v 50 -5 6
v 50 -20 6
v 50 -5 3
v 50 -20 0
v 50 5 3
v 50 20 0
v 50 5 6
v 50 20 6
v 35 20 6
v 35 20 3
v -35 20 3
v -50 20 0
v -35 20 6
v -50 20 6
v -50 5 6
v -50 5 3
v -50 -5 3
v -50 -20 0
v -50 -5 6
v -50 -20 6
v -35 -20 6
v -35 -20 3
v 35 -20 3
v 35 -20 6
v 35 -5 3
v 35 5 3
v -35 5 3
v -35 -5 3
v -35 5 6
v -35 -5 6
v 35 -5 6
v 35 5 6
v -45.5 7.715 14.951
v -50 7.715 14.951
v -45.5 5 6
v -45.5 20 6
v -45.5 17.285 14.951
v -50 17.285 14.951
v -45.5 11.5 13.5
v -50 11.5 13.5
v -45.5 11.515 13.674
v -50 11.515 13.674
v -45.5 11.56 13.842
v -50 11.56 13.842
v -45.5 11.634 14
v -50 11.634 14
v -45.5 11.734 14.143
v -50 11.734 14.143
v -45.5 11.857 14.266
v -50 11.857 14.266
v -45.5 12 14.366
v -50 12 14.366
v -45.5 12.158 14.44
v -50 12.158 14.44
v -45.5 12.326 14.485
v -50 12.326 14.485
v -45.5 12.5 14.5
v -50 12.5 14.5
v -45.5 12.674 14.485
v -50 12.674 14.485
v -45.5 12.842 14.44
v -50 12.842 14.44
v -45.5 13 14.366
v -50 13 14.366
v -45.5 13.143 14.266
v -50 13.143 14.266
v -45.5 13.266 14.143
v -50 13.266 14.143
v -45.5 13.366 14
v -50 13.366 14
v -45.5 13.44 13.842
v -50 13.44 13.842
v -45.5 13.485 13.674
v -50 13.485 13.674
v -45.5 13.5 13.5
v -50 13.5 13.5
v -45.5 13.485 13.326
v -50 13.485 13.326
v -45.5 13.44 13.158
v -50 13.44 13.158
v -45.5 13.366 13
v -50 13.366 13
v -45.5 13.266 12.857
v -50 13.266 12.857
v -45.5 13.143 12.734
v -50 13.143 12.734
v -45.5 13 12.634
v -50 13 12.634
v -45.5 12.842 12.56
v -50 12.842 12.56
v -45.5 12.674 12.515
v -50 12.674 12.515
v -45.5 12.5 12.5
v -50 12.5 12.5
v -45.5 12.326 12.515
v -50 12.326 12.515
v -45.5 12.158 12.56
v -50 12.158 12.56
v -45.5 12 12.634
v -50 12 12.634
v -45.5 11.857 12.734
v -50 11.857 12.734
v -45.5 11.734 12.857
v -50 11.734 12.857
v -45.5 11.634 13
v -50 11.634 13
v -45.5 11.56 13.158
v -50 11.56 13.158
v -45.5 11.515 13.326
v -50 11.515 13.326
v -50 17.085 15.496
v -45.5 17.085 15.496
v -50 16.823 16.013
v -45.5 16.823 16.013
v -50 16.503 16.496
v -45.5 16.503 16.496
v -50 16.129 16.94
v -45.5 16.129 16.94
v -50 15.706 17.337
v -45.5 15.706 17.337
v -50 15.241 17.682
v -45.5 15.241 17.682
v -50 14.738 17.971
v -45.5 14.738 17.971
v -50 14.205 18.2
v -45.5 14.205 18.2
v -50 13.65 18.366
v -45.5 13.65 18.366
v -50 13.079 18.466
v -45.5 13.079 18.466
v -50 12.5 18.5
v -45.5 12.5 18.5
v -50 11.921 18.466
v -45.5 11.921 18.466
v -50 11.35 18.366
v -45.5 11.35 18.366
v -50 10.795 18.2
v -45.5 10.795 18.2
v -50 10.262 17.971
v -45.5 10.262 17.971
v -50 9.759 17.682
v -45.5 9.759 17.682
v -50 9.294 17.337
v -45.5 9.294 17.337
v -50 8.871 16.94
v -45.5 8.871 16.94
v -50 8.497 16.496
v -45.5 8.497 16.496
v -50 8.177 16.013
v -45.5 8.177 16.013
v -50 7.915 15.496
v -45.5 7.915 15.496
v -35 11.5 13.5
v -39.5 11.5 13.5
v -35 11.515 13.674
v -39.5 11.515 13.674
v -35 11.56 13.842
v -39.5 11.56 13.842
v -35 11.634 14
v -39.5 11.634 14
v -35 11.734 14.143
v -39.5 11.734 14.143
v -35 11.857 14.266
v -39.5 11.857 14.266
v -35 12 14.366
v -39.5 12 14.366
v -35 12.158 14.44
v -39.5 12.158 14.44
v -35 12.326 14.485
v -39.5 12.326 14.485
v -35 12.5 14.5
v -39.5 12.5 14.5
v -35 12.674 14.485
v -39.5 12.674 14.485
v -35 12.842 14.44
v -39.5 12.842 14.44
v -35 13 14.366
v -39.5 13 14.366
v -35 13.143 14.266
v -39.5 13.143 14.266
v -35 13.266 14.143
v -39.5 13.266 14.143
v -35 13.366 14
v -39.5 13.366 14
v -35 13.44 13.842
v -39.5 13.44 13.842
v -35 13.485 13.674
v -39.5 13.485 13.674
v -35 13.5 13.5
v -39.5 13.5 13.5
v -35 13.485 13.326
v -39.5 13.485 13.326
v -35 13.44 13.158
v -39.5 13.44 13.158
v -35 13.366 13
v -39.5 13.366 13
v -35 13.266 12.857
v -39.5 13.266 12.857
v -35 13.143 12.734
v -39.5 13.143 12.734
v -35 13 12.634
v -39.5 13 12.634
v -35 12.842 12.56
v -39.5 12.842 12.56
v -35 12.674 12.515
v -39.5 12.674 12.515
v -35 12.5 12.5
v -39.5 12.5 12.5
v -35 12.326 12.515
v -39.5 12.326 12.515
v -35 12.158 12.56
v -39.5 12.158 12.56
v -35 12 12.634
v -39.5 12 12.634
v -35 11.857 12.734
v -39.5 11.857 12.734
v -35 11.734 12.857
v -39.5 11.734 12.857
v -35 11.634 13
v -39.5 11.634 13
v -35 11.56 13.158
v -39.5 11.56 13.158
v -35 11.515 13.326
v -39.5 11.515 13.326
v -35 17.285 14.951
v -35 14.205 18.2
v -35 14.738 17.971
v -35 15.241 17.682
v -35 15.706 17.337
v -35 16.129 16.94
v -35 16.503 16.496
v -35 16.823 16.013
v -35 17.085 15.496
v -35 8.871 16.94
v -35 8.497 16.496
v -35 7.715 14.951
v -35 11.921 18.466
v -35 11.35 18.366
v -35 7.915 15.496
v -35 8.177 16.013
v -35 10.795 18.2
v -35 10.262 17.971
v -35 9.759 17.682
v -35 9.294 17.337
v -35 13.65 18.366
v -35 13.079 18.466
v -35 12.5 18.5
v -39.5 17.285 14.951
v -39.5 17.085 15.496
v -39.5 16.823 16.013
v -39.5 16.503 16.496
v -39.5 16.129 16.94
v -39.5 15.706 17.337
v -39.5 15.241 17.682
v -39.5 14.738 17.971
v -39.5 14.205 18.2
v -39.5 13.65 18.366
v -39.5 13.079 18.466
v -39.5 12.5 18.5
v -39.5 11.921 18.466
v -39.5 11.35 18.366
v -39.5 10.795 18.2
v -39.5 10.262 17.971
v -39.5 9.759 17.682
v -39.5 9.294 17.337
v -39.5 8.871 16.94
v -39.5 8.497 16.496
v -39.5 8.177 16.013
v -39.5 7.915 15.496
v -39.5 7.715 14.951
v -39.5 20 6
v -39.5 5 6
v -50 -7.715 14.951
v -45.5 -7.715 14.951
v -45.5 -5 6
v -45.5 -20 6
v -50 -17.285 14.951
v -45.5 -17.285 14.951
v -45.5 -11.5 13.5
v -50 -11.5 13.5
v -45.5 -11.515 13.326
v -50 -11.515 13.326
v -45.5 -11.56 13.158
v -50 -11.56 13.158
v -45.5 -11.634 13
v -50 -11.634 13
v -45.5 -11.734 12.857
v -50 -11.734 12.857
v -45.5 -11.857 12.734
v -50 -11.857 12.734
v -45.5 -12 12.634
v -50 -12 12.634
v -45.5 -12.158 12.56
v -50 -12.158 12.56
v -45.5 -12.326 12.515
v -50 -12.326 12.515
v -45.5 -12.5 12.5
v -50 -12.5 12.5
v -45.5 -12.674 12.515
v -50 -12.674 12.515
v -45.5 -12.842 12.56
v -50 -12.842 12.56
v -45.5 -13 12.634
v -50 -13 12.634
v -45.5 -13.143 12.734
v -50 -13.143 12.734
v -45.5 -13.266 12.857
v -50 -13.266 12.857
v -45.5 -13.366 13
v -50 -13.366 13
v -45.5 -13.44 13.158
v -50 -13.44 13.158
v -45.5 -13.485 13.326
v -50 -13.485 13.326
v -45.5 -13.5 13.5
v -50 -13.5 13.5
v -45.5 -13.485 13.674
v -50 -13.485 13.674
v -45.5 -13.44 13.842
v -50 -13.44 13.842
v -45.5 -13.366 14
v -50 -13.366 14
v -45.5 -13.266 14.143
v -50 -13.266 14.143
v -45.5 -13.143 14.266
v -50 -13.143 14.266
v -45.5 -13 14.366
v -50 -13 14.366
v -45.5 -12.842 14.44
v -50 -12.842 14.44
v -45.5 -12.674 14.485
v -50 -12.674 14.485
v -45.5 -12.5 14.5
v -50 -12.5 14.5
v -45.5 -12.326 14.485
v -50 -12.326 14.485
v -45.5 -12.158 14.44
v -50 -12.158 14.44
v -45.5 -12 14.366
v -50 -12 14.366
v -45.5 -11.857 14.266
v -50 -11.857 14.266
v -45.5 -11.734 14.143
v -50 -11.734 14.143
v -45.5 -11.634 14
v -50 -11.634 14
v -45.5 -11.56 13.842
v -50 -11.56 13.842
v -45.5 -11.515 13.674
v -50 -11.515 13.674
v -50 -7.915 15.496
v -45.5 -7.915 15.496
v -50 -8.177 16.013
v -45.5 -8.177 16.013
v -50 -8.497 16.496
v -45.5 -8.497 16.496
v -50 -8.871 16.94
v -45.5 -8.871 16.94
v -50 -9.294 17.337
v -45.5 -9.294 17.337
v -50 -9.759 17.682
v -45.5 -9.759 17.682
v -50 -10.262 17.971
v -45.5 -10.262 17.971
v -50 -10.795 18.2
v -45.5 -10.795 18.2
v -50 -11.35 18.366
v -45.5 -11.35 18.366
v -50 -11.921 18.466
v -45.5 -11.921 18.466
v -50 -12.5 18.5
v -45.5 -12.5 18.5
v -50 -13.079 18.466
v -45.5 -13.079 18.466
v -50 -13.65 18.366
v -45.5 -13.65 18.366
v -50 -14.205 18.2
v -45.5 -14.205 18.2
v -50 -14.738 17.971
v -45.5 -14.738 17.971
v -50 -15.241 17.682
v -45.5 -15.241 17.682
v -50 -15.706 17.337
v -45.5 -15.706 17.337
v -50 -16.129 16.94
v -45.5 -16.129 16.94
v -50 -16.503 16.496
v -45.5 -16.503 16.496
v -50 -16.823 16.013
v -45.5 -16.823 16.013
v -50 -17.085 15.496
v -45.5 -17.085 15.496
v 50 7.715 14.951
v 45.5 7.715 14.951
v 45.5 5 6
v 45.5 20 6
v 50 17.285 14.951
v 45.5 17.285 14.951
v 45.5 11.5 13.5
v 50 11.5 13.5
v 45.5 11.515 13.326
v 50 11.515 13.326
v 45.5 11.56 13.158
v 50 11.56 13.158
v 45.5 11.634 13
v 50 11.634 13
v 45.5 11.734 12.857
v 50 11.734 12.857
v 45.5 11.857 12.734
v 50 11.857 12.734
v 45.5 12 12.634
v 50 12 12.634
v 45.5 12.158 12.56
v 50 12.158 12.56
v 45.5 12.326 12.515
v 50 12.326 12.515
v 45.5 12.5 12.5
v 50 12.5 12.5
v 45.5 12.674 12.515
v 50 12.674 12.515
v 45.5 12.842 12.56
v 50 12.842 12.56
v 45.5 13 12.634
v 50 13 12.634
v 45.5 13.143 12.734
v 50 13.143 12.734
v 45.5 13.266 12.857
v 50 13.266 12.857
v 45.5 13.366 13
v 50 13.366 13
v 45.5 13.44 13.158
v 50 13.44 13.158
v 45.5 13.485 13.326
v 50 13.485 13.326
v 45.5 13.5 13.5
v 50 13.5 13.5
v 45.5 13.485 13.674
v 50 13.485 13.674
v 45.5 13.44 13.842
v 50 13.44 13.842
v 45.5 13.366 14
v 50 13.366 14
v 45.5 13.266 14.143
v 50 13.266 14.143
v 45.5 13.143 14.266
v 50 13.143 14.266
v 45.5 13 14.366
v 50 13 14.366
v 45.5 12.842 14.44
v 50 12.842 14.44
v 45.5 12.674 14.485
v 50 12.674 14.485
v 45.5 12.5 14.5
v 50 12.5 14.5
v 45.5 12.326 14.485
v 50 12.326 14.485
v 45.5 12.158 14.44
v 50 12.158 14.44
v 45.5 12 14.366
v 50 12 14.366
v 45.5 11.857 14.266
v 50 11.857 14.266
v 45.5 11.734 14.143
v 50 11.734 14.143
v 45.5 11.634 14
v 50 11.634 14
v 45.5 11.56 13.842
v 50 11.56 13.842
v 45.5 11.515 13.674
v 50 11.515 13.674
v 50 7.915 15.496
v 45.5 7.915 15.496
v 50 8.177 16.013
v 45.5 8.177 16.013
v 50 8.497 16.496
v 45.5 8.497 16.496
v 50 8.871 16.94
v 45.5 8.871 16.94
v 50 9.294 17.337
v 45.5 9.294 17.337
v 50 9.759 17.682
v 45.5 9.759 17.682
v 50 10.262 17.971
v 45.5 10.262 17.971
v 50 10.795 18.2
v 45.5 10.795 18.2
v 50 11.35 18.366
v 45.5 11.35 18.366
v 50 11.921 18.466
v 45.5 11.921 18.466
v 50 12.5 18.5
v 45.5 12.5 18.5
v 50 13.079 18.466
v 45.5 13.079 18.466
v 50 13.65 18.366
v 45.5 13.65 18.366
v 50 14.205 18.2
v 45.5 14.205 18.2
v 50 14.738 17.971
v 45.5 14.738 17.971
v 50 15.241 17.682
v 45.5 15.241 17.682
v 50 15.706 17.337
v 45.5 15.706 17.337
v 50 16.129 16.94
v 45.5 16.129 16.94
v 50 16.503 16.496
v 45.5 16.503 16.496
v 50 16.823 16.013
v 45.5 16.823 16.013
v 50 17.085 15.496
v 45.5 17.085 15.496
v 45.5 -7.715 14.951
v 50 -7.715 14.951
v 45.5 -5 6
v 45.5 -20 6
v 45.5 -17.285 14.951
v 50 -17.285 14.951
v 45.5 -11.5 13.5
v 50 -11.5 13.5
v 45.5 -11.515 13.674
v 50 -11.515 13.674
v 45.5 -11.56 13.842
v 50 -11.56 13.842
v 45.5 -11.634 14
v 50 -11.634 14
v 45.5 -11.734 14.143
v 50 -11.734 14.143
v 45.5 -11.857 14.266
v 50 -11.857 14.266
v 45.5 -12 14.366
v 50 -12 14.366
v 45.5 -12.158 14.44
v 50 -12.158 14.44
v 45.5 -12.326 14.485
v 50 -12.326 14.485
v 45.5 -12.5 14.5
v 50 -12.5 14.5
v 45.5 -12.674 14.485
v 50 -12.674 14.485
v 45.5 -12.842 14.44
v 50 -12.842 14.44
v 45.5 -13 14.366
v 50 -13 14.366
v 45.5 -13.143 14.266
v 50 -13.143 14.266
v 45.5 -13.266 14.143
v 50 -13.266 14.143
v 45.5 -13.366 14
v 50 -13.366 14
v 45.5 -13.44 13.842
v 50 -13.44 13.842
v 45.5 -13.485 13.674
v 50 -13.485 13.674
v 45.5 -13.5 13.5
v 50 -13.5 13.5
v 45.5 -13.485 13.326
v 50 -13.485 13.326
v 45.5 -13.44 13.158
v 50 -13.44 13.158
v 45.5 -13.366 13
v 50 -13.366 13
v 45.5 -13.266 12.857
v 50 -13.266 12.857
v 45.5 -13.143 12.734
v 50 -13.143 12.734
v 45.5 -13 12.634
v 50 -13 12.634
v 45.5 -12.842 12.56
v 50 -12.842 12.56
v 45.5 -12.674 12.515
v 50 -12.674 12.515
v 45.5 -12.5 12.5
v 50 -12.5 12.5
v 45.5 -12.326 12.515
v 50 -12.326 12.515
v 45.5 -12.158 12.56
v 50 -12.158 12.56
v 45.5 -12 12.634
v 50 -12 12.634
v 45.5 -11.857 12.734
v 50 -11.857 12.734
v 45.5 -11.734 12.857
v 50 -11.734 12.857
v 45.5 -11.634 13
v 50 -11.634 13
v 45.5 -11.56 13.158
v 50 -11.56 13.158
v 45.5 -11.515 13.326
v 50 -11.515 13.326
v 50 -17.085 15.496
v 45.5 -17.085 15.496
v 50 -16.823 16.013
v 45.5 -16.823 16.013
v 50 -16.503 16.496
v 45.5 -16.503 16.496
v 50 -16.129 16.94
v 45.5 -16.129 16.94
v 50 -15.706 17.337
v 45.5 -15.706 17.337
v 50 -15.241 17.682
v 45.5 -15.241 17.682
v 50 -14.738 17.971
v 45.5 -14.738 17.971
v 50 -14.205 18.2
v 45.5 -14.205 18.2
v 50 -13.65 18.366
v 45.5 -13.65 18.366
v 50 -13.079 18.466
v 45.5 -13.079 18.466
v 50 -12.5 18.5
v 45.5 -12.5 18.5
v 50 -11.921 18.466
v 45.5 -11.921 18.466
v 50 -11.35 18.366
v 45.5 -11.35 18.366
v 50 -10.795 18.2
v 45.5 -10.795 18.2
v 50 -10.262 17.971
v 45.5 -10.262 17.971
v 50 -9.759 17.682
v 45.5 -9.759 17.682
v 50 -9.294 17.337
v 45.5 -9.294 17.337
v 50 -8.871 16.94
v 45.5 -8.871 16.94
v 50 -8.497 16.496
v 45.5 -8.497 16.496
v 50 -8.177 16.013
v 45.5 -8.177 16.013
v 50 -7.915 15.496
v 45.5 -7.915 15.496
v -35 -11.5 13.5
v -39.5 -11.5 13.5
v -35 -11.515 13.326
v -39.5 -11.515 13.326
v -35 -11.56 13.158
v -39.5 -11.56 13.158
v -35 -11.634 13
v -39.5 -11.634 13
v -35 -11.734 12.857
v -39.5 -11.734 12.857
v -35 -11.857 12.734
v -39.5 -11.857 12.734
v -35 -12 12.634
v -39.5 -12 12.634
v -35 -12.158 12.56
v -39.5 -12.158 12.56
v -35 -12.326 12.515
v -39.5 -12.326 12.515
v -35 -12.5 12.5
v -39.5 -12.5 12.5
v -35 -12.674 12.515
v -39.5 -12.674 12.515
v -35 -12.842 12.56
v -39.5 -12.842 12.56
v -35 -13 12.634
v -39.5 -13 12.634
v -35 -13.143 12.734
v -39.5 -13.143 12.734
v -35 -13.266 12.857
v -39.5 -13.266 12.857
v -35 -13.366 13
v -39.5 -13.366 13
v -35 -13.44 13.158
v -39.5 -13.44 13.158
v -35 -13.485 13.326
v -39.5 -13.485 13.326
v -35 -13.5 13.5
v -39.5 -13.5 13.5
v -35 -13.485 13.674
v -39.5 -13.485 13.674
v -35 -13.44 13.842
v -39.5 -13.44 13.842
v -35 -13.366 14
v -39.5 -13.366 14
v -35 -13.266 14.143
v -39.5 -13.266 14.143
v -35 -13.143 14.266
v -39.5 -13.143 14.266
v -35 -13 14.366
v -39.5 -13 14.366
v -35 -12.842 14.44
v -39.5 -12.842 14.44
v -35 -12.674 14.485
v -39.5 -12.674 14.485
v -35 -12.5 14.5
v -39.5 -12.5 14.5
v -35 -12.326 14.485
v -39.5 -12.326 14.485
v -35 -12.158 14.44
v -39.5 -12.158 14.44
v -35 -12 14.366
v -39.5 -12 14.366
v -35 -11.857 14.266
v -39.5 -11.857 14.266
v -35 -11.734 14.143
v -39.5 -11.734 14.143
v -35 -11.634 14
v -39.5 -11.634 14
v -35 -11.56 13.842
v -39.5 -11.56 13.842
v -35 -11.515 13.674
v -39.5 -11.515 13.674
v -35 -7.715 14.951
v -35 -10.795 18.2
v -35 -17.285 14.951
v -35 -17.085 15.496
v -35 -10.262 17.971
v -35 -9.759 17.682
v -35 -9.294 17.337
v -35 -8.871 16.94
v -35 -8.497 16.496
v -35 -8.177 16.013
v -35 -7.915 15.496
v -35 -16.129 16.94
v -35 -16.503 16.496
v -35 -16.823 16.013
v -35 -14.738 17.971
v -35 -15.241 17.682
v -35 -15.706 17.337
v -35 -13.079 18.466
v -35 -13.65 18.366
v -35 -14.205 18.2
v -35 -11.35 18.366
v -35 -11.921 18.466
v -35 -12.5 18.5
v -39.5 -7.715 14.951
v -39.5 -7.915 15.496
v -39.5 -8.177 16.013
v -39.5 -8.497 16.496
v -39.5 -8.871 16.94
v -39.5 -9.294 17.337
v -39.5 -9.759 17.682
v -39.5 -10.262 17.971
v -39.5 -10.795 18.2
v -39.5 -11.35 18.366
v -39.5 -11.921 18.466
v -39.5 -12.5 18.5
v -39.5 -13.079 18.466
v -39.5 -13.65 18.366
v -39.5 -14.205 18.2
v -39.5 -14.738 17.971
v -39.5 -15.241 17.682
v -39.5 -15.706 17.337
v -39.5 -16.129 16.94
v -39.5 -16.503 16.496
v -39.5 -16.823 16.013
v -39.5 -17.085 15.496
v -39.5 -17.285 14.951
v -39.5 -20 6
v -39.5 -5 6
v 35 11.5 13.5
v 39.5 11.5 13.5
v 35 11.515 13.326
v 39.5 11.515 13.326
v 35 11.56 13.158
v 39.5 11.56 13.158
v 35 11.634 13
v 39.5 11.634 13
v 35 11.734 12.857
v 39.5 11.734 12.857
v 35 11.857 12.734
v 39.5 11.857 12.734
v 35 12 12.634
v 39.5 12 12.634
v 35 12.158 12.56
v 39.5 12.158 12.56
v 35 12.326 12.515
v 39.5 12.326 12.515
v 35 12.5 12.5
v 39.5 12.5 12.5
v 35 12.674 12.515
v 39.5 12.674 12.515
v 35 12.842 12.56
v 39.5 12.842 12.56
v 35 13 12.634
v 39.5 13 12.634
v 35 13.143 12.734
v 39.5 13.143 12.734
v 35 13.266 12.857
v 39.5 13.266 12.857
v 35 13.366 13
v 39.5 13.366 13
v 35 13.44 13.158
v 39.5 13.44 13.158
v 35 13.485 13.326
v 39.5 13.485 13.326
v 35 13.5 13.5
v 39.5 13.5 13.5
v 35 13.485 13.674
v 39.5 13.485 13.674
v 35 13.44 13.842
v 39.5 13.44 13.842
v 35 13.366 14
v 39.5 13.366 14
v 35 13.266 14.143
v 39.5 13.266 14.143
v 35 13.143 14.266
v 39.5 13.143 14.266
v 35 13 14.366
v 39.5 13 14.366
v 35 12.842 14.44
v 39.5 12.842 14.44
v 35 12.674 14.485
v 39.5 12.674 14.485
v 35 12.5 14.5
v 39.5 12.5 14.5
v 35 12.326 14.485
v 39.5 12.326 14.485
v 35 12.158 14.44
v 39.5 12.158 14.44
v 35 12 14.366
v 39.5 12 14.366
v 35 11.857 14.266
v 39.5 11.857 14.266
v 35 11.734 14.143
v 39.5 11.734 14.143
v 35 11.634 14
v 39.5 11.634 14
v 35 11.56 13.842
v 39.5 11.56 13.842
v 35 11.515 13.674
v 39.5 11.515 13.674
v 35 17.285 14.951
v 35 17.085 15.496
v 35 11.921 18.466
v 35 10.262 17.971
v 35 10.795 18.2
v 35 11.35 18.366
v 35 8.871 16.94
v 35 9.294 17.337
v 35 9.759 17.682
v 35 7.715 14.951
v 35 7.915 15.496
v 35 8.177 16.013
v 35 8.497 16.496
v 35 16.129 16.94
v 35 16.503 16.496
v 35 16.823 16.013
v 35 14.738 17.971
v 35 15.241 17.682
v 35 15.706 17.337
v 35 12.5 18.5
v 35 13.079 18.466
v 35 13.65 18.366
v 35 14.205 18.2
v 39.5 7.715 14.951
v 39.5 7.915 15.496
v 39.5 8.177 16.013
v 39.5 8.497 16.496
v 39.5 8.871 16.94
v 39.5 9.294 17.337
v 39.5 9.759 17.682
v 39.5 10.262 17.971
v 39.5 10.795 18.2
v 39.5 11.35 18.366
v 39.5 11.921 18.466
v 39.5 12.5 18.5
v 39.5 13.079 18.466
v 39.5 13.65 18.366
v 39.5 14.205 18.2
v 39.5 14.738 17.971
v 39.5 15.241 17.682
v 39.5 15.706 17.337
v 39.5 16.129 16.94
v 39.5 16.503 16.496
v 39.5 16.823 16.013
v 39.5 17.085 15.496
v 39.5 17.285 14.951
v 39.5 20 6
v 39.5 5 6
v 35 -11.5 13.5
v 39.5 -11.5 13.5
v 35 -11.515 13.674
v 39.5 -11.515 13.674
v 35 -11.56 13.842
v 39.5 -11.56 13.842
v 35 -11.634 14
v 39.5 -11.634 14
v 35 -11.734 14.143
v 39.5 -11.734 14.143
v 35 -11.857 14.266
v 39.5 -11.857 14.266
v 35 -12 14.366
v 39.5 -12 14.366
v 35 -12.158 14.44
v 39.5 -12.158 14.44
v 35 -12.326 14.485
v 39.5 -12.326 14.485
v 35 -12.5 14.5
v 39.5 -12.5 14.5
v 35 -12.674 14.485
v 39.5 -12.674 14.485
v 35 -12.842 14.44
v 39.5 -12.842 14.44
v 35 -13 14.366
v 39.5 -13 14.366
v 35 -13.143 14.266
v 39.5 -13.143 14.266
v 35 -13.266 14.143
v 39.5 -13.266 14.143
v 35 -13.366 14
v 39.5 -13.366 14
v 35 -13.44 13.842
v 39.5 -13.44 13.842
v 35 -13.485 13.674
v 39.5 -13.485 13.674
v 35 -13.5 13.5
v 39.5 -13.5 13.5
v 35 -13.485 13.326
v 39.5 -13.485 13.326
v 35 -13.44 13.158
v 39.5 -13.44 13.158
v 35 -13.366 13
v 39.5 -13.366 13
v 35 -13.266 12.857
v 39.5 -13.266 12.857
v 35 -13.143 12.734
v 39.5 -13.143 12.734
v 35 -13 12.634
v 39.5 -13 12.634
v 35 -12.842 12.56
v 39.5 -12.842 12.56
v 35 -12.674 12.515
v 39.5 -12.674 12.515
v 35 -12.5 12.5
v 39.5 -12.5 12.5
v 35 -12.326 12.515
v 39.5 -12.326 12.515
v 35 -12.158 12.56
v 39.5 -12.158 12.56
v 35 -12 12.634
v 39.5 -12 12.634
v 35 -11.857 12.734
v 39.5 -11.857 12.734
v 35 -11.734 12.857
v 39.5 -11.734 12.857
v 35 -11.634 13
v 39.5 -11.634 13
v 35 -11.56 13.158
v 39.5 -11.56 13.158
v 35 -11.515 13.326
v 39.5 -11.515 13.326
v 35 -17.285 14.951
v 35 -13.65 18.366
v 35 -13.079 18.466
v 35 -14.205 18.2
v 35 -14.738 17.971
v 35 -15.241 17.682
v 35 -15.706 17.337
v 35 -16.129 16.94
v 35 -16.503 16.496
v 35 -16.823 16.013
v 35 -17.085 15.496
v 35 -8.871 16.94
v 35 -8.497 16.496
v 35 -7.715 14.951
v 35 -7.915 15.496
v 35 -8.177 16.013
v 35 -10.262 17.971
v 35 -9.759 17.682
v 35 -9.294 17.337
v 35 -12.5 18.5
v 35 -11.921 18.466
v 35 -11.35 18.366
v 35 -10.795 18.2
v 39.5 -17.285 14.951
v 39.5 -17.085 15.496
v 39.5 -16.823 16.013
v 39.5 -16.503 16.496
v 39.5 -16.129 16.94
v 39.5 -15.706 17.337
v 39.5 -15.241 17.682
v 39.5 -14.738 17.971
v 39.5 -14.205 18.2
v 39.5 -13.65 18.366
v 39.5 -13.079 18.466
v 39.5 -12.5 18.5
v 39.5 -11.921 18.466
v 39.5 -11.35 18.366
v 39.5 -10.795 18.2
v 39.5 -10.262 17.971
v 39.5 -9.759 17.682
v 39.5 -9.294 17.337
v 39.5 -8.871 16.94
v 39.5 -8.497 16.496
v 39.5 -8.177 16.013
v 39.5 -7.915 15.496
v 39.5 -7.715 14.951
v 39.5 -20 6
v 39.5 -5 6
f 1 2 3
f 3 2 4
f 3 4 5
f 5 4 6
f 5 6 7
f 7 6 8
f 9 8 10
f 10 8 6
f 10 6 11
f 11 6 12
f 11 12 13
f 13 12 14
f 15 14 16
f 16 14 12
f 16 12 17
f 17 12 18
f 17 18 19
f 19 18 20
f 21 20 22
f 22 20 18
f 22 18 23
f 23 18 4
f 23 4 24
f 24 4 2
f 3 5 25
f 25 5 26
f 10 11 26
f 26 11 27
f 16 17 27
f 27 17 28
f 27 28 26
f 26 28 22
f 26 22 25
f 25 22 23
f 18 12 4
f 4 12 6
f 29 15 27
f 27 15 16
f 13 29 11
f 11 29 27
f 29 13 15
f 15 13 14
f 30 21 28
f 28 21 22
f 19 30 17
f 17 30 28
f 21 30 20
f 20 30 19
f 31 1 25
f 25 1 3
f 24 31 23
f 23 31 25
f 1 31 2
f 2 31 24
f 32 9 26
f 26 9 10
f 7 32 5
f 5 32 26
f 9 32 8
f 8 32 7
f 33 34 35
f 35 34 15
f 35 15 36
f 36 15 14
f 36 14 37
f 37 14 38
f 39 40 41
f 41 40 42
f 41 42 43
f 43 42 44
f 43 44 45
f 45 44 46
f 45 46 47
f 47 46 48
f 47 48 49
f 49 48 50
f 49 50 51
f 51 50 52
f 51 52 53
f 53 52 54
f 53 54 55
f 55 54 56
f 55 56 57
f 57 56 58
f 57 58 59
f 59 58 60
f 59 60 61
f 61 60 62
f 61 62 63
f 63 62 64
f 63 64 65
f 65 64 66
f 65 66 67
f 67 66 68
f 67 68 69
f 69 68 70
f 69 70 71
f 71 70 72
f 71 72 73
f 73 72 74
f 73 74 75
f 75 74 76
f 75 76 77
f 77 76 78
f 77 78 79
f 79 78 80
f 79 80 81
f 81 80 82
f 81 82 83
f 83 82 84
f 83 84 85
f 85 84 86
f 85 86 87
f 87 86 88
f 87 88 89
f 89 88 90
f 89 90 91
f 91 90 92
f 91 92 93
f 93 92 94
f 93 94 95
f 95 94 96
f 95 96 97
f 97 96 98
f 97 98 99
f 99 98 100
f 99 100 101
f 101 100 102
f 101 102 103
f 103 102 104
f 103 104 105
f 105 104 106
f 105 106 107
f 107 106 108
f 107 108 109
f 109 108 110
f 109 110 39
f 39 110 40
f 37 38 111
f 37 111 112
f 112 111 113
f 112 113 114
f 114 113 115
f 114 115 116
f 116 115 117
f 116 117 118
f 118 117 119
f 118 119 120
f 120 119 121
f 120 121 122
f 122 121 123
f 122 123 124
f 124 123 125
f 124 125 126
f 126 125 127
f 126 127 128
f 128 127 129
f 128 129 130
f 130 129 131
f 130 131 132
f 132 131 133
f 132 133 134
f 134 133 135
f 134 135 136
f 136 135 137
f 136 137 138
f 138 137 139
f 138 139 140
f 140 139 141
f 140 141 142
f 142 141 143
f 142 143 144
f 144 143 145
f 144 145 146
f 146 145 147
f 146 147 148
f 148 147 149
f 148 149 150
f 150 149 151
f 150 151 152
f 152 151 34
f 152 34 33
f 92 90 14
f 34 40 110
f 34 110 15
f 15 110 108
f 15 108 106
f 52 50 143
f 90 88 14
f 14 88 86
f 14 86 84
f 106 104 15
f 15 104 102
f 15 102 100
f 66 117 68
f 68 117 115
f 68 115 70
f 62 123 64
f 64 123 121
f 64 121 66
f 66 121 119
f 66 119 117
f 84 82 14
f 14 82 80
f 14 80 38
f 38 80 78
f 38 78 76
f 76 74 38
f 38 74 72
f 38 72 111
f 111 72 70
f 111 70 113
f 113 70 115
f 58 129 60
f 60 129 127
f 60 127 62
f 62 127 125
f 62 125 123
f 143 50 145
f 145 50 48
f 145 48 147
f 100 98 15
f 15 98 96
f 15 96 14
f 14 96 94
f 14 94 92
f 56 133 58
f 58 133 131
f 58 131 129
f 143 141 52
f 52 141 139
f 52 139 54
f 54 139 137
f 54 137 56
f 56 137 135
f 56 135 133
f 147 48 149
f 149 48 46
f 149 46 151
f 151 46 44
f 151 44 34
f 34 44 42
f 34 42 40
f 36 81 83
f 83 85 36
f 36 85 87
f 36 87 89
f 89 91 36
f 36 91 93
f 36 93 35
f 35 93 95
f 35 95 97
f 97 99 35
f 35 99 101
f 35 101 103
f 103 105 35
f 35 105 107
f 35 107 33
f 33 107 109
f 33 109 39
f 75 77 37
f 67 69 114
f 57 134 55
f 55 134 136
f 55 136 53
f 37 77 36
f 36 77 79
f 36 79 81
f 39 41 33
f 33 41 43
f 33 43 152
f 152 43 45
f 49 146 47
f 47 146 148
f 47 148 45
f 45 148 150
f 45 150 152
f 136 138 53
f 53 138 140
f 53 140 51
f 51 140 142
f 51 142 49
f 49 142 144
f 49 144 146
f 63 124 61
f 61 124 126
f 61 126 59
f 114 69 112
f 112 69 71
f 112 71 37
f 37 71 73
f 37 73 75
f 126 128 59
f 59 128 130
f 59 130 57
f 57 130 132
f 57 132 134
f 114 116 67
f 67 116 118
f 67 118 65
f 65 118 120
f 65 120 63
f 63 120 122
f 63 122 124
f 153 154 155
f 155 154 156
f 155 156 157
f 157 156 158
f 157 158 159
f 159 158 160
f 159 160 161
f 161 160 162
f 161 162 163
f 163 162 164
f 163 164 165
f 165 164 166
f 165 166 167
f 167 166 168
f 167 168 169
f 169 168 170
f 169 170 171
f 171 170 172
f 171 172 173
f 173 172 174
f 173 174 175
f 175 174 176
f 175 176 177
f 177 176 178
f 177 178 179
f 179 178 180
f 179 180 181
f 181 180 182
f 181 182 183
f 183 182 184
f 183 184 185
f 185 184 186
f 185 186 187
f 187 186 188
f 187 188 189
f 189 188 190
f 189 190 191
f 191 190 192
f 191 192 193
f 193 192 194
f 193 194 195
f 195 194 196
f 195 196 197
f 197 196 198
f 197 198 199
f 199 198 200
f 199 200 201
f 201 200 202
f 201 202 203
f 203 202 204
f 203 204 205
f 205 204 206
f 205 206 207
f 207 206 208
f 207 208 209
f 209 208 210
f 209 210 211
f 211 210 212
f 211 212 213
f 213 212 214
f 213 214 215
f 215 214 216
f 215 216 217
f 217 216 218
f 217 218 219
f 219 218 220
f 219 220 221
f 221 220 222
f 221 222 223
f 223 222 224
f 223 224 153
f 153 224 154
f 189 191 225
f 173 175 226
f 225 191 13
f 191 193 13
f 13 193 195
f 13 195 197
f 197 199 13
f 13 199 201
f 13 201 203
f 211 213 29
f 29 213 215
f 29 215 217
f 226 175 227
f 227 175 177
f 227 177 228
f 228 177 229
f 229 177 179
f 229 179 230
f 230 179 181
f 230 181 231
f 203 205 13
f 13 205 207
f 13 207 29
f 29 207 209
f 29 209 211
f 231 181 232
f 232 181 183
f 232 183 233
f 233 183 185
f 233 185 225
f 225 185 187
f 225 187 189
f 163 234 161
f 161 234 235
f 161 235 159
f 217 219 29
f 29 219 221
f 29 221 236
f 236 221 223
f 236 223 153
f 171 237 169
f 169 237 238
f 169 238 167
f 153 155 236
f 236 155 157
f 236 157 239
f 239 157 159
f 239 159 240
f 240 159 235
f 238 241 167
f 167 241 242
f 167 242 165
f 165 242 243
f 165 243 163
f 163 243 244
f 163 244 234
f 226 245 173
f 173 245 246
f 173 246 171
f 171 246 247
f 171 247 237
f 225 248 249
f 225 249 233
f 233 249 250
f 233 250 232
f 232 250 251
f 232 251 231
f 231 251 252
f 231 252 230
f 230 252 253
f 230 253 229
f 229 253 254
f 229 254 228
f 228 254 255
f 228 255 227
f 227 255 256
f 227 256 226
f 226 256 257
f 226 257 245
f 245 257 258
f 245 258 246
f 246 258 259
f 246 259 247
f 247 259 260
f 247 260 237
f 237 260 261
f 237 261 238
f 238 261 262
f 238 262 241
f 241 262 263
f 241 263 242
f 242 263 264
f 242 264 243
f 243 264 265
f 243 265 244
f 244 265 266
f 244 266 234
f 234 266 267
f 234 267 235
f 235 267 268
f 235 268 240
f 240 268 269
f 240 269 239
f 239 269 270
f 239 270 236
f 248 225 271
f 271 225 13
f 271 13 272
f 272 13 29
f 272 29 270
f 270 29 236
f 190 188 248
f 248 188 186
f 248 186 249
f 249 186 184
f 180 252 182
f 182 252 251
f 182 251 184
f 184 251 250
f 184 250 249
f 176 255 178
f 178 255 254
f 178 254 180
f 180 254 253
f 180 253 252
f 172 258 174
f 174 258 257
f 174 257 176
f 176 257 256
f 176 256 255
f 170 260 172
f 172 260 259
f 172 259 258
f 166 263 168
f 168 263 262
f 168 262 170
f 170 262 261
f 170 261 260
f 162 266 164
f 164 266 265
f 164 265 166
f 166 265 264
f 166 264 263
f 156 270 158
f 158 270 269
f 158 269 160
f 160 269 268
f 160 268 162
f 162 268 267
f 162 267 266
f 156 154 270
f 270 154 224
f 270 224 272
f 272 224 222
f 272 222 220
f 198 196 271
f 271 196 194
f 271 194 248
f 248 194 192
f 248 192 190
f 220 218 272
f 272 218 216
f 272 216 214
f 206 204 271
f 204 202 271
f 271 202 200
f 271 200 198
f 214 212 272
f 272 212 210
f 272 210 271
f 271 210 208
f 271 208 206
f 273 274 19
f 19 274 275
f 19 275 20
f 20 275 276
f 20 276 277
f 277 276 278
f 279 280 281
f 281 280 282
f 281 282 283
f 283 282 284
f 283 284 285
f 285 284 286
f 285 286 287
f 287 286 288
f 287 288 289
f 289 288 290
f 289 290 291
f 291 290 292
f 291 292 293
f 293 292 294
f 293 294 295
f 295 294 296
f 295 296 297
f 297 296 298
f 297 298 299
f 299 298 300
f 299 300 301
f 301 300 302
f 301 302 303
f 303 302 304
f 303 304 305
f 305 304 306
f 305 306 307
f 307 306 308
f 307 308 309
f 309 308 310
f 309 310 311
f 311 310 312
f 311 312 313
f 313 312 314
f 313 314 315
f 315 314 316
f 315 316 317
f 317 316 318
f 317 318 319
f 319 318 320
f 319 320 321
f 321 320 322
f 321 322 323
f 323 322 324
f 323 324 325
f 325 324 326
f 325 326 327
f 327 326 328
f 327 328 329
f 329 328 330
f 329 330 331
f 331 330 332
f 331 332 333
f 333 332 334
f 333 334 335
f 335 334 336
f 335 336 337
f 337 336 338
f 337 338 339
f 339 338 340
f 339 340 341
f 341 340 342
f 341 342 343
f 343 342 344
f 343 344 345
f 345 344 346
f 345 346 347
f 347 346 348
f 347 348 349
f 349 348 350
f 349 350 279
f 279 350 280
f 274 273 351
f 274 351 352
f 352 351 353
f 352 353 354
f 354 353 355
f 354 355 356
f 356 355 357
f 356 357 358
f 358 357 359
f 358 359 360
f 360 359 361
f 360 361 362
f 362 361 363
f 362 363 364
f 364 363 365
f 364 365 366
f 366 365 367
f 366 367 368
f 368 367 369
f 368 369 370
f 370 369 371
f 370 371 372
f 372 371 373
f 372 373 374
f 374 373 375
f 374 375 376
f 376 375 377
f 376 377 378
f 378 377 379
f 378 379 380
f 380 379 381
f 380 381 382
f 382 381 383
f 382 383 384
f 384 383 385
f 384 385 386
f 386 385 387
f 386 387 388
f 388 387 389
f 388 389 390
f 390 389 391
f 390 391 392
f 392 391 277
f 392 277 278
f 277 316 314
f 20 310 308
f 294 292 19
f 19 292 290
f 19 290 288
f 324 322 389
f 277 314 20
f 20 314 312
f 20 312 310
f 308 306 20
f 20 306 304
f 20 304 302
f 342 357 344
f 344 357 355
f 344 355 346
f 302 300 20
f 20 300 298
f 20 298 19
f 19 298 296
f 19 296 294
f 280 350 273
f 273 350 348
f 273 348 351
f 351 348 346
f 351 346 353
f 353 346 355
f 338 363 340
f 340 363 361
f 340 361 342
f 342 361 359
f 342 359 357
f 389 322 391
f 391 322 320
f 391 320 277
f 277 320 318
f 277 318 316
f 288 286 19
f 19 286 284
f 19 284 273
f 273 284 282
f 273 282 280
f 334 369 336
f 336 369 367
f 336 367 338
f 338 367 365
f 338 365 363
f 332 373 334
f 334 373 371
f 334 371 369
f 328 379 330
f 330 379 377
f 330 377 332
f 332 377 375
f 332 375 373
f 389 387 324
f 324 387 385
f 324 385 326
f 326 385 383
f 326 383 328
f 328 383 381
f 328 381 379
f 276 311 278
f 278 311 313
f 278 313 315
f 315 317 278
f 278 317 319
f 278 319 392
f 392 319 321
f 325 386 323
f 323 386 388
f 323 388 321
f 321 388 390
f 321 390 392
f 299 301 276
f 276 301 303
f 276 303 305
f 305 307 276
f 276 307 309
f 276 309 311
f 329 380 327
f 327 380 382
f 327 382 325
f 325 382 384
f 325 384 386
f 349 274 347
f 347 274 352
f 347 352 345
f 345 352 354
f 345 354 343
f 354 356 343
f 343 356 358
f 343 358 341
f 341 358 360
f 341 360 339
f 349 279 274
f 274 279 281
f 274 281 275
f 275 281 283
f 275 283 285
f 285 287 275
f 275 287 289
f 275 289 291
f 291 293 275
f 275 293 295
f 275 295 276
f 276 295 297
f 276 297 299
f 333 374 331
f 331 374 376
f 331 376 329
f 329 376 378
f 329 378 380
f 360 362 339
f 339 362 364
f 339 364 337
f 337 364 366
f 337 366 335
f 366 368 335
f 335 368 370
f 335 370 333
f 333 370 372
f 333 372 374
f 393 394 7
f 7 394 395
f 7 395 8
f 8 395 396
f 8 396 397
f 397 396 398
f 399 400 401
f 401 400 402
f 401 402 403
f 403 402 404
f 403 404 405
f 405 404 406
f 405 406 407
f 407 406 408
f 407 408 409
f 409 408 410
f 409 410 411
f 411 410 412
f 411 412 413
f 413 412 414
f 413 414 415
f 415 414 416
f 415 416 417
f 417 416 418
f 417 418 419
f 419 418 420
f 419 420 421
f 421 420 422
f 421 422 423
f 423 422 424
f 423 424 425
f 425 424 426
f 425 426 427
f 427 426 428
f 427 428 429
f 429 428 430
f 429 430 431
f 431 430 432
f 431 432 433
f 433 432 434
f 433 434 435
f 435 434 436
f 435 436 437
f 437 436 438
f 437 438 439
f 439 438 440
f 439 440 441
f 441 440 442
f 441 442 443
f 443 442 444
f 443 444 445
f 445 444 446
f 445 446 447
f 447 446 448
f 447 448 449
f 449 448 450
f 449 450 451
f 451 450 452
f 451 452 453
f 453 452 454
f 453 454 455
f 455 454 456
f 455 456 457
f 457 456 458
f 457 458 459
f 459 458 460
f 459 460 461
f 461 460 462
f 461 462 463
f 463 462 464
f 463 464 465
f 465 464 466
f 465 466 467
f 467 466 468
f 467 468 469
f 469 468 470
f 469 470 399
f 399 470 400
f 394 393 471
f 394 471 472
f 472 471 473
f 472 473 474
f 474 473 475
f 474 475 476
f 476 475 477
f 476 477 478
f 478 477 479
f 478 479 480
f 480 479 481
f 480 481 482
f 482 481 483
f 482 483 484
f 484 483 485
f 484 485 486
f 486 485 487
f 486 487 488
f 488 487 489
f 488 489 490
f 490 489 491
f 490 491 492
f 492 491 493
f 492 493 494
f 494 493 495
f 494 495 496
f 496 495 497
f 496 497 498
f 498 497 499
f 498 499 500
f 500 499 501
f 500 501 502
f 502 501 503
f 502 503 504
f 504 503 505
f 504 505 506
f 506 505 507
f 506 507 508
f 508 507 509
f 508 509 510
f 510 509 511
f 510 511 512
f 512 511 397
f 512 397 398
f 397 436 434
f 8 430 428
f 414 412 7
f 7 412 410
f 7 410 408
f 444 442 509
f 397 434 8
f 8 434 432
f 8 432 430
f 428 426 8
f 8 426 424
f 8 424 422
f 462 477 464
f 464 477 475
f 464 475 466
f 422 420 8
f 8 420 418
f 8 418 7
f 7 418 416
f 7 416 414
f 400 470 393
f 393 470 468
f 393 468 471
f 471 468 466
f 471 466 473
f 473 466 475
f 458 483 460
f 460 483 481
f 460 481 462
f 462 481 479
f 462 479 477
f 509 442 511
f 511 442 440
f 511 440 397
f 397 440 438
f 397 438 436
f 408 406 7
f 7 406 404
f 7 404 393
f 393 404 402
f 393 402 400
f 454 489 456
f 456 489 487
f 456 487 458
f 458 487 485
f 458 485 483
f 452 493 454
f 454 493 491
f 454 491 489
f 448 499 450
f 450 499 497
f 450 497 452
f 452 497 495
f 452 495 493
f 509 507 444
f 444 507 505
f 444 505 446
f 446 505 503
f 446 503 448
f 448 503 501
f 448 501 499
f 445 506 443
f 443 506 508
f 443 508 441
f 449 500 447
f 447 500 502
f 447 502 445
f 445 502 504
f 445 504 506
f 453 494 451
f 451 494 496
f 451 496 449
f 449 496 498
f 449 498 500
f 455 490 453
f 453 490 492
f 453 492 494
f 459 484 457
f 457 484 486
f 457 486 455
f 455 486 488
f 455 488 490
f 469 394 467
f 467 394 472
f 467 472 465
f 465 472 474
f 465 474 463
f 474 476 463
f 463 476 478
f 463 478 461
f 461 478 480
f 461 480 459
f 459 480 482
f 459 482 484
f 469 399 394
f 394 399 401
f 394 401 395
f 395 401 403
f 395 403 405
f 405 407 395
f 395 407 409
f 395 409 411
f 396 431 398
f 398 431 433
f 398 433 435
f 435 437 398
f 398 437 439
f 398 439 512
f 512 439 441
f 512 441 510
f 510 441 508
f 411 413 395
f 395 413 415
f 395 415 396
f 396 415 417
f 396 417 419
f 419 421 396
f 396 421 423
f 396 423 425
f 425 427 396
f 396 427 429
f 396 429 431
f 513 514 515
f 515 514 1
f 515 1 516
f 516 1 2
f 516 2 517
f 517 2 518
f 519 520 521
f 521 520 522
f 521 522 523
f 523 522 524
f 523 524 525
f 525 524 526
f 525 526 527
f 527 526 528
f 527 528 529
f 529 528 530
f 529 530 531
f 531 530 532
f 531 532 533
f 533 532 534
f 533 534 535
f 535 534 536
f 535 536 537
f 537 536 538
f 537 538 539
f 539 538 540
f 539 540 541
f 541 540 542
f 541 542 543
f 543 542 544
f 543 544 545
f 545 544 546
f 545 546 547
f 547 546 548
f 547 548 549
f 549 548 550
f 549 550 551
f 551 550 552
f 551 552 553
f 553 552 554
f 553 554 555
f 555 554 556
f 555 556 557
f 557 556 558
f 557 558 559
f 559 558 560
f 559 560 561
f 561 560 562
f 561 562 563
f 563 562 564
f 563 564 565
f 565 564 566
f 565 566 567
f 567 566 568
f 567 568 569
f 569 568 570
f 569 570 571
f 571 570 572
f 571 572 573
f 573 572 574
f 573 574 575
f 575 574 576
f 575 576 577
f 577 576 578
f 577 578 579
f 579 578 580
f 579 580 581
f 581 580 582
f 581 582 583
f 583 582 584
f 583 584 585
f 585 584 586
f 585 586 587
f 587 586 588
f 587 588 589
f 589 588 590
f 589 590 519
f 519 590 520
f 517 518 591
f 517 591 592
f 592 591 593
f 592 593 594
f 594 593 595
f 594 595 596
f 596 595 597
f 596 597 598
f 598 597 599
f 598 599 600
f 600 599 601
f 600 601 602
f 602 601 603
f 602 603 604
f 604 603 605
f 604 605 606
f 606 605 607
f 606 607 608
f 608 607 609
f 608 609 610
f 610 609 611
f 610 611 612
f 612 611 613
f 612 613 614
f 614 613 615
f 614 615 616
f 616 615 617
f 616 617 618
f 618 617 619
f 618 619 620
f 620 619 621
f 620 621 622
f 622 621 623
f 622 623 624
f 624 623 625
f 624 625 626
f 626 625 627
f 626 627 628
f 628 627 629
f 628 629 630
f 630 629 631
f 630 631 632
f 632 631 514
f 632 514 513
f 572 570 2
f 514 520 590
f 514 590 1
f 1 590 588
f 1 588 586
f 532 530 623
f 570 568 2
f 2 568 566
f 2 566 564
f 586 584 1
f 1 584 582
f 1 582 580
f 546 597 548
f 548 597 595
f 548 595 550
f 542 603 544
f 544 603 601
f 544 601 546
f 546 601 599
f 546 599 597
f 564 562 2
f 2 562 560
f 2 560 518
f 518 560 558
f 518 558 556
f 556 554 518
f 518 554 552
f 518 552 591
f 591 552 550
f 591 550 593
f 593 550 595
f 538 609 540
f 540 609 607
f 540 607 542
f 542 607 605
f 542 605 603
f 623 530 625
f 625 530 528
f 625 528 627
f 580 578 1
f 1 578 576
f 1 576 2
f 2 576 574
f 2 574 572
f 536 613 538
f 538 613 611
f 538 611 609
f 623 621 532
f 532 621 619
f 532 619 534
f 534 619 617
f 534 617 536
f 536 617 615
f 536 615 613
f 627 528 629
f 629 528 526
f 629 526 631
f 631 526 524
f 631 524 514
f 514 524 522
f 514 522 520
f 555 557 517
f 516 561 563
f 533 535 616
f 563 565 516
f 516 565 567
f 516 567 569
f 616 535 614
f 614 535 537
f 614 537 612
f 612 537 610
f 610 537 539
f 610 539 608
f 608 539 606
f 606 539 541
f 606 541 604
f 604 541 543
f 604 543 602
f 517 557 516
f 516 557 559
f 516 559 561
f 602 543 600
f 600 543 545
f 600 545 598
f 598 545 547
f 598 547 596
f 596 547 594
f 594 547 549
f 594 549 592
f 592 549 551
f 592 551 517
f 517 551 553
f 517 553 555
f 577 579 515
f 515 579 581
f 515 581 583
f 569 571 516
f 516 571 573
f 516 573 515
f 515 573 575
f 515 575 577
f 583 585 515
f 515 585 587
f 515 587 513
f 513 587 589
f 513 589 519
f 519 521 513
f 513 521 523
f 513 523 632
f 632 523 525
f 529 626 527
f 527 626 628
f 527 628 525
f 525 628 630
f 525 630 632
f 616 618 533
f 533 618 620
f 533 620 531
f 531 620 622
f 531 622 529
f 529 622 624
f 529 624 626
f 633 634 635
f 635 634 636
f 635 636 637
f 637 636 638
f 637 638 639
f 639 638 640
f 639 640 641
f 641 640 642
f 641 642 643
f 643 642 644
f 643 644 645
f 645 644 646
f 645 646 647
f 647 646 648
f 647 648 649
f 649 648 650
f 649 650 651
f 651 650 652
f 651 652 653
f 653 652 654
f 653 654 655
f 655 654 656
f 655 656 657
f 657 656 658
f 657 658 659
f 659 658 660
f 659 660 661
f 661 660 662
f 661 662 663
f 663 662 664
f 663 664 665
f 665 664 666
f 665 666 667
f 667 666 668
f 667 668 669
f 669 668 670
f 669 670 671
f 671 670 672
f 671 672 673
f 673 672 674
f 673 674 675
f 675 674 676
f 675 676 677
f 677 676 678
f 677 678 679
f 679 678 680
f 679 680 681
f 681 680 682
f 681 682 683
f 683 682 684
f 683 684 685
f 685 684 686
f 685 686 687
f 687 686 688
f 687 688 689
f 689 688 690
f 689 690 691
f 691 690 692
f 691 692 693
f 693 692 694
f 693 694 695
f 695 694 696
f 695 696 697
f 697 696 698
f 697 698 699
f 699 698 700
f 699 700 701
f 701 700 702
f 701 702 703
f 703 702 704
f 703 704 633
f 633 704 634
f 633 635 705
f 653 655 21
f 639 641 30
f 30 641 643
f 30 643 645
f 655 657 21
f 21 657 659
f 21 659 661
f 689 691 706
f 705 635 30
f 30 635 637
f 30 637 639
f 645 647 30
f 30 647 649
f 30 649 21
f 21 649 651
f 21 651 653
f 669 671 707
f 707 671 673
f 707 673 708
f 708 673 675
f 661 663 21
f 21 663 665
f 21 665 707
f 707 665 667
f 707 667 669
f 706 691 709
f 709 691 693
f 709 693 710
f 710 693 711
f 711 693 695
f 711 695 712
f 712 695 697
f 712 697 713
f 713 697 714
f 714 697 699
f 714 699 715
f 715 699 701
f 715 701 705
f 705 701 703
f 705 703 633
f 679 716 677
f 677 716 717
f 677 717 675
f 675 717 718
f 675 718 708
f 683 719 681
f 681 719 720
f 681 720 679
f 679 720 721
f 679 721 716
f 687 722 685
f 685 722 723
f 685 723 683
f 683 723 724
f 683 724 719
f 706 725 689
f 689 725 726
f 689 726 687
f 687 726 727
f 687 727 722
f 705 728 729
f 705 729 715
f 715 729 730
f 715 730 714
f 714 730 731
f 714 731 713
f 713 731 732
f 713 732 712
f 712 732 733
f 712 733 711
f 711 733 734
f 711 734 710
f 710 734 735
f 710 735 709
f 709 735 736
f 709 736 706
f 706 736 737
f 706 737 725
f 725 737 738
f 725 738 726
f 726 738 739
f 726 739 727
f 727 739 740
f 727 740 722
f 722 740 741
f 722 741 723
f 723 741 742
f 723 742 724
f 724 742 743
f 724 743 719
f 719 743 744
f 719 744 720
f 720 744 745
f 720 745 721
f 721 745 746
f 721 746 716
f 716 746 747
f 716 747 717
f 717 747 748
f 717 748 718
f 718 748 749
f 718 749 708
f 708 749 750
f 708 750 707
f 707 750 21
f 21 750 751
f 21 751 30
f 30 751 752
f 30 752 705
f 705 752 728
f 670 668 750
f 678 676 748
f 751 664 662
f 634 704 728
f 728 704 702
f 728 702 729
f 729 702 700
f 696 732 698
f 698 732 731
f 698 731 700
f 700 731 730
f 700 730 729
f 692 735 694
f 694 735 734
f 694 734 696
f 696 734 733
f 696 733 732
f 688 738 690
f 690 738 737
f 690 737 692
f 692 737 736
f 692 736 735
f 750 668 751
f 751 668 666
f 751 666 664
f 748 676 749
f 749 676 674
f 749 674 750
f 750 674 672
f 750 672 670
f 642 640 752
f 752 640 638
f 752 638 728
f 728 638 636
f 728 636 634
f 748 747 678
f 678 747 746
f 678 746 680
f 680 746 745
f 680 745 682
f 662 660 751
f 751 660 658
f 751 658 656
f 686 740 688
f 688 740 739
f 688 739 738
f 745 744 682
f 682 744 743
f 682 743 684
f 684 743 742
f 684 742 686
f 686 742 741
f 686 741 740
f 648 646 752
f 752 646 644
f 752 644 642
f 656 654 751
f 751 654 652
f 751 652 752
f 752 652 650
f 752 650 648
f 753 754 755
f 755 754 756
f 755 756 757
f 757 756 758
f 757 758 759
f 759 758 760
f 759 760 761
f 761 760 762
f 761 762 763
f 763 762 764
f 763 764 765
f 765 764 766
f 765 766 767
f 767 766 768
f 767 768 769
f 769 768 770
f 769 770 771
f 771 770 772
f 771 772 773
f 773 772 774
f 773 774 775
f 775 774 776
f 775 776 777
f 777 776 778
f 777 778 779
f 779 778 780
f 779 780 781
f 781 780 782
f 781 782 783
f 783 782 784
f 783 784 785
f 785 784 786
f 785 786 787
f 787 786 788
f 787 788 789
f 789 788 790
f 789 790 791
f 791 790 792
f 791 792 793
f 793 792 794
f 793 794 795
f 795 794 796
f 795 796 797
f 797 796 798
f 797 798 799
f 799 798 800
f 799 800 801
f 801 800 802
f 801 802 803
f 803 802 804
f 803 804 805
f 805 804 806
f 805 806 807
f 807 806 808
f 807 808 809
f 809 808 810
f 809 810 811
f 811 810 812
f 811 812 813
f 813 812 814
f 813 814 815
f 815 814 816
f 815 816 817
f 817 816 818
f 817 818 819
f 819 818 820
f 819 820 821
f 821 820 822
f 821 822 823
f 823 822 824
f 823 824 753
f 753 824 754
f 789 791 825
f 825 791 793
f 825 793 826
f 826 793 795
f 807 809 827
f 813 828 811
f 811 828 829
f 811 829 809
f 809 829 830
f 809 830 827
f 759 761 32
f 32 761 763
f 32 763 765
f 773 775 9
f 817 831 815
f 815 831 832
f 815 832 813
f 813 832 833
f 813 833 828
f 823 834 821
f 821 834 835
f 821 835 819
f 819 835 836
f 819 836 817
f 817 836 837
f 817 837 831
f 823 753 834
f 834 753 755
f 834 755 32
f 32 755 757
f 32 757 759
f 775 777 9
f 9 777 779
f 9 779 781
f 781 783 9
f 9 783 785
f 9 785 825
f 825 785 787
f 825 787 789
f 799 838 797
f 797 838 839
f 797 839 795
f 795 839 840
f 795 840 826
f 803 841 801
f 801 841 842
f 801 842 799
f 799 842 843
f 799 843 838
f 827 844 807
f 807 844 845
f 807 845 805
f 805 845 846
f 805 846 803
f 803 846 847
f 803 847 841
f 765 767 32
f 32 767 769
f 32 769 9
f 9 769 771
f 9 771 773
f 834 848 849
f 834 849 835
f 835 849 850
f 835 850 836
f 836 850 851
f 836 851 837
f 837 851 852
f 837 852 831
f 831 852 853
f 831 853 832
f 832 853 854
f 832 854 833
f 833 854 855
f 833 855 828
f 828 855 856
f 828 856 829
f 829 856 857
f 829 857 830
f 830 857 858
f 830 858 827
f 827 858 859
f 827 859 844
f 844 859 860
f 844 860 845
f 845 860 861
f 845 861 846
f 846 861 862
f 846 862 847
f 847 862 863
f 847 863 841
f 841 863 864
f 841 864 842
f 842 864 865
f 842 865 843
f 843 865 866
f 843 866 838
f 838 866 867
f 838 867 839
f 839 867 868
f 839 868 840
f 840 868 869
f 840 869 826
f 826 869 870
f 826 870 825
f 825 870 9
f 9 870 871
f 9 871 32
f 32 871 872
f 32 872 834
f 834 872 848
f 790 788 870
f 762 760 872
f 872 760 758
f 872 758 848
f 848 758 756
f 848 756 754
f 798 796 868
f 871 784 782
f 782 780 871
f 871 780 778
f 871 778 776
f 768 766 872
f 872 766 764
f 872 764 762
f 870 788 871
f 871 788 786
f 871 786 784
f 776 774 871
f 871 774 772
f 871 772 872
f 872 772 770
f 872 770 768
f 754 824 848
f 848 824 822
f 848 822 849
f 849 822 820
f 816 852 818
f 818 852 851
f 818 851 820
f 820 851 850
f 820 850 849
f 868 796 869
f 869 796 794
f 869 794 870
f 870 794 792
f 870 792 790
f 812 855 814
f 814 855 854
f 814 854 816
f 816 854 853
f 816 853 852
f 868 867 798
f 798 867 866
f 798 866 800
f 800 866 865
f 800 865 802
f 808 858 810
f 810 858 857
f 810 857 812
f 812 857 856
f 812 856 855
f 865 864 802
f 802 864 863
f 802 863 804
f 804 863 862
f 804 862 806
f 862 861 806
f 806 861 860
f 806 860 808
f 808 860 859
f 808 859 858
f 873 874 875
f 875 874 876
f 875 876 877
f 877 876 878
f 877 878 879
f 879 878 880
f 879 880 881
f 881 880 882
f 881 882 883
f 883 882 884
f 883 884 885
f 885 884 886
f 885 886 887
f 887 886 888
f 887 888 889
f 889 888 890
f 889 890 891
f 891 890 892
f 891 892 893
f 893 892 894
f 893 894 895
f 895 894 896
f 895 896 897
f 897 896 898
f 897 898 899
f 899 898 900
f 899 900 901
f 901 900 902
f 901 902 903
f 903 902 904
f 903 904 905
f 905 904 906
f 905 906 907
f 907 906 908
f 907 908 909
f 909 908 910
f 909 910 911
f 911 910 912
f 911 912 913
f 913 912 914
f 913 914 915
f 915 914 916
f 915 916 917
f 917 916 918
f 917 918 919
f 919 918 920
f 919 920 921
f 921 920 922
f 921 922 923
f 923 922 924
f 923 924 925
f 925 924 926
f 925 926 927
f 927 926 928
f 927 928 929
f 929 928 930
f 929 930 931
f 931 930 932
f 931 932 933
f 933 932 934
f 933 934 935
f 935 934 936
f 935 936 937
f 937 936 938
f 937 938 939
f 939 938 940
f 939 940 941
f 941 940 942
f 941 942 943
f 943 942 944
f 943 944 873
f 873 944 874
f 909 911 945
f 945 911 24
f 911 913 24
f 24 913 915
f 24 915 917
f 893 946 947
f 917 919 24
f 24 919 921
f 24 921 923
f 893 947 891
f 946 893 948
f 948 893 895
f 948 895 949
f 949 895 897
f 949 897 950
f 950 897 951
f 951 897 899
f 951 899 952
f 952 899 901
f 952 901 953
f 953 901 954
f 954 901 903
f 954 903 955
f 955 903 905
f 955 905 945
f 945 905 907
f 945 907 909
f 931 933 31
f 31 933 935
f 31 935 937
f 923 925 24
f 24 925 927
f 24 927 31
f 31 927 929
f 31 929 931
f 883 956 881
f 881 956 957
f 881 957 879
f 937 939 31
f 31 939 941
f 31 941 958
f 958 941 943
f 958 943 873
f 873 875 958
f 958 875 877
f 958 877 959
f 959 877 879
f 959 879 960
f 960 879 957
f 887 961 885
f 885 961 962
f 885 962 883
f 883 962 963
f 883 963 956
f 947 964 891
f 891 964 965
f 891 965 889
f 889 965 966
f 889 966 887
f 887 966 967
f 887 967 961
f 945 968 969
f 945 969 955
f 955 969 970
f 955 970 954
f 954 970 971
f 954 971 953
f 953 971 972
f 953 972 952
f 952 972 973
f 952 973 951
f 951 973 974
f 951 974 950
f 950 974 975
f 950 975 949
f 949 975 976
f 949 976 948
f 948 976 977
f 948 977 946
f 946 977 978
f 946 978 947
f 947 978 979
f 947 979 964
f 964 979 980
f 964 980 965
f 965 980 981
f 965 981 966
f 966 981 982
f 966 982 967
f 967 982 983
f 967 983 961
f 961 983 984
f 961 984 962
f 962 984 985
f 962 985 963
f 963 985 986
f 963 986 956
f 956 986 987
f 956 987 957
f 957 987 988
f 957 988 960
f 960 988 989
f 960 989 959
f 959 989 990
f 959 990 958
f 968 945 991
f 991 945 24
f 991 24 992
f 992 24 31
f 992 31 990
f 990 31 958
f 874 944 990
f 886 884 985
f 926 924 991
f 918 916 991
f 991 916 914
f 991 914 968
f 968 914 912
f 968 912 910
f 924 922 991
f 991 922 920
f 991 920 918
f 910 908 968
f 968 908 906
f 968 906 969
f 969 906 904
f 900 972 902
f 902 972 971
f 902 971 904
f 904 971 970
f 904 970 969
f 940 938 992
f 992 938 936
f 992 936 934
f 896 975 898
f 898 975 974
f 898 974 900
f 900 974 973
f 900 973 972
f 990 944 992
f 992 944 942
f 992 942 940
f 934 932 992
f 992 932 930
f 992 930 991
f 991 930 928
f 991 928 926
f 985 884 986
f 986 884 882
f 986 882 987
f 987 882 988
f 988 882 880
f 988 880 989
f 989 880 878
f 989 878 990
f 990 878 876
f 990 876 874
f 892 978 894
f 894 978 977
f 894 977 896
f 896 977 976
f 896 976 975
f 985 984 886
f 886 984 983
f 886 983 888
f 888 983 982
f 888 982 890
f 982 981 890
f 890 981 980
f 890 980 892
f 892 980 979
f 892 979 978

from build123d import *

# Parameters (mm, degrees)
SKETCH1_W           = 100
SKETCH1_H           = 40
BOSS_EXTRUDE1_DEPTH = 3
SKETCH2_W           = 15
SKETCH2_H           = 15
BOSS_EXTRUDE2_DEPTH = 3
SKETCH3_R           = 1
BOSS_EXTRUDE3_DEPTH = 15
CUT_EXTRUDE1_REACH  = 68.65
SKETCH4_W           = 6
SKETCH4_H           = 12.5
MIRROR6_START       = 35
MIRROR6_OUTLINE_R   = 1
MIRROR6_DEPTH       = 4.5
MIRROR6_START_2     = 45.5
MIRROR6_2_OUTLINE_R = 1
MIRROR6_2_DEPTH     = 4.5
MIRROR6_START_3     = -50
MIRROR6_3_OUTLINE_R = 1
MIRROR6_3_DEPTH     = 4.5
MIRROR6_START_4     = -39.5
MIRROR6_4_OUTLINE_R = 1
MIRROR6_4_DEPTH     = 4.5


# Read off the part's stored shape, not the designer's step: Mirror6
with BuildPart() as part:
    # Sketch1 → Boss-Extrude1 (new body)
    with BuildSketch(Plane.XY):
        Rectangle(SKETCH1_W, SKETCH1_H)
    extrude(amount=BOSS_EXTRUDE1_DEPTH)

    # Sketch2 → Boss-Extrude2 (add)
    with BuildSketch(Plane.XY.offset(3)):
        with Locations((-42.5, 12.5)):
            Rectangle(SKETCH2_W, SKETCH2_H)
        with Locations((-42.5, -12.5)):
            Rectangle(SKETCH2_W, SKETCH2_H)
        with Locations((42.5, -12.5)):
            Rectangle(SKETCH2_W, SKETCH2_H)
        with Locations((42.5, 12.5)):
            Rectangle(SKETCH2_W, SKETCH2_H)
    extrude(amount=BOSS_EXTRUDE2_DEPTH)


with BuildPart() as body_2:
    # Sketch3 → Boss-Extrude3 (new body)
    with BuildSketch(Plane.ZY.offset(50)):
        with BuildLine():
            Line((14.951381156, 7.715285511), (6, 5))
            Line((6, 5), (6, 20))
            Line((6, 20), (14.951381156, 17.284714489))
            ThreePointArc((14.951381156, 17.284714489), (18.5, 12.5), (14.951381156, 7.715285511))
        make_face()
        with Locations(Location((13.5, 12.5, 0), (0, 0, 270))):
            Circle(SKETCH3_R, mode=Mode.SUBTRACT)
    extrude(amount=-BOSS_EXTRUDE3_DEPTH)

    # Cut-Extrude1: up to this plane
    cut_extrude1_end = Plane(origin=(-15.47437581, 2.912031882, -0.883327147), z_dir=(0, 0.956942897795657, -0.29027623112899026))
    # Sketch4 → Cut-Extrude1 (cut, up to the surface)
    with BuildSketch(Plane(origin=(0, 20, 0), x_dir=(1, 0, 0), z_dir=(0, 1, 0)), mode=Mode.PRIVATE) as cut_extrude1_sk1:
        with Locations((-42.5, -12.25)):
            Rectangle(SKETCH4_W, SKETCH4_H)
    cut_extrude1_tool1 = split(extrude(cut_extrude1_sk1.sketch, amount=-CUT_EXTRUDE1_REACH, mode=Mode.PRIVATE), bisect_by=cut_extrude1_end, keep=Keep.BOTH, mode=Mode.PRIVATE)
    add(cut_extrude1_tool1.solids().sort_by_distance((-42.5, 20, 12.25))[0], mode=Mode.SUBTRACT)


with BuildPart() as cut_extrude1_piece_1:
    # of the separate pieces the step leaves, piece 1, a body of its own (cut_extrude1_pieces)
    add(body_2.part.solids().sort_by_distance((-39.5, 7.715285511, 14.951381156))[0])


with BuildPart() as cut_extrude1_piece_2:
    # of the separate pieces the step leaves, piece 2, a body of its own (cut_extrude1_pieces)
    add(body_2.part.solids().sort_by_distance((-50, 7.715285511, 14.951381156))[0])


with BuildPart() as body_4:
    # Mirror6 outline → Mirror6 (new body)
    # profile 1 of 2: a face of its own
    with BuildSketch(Plane.YZ.offset(MIRROR6_START)):
        with BuildLine():
            Line((-5, 6), (-7.715285511, 14.951381156))
            ThreePointArc((-7.715285511, 14.951381156), (-12.5, 18.5), (-17.284714489, 14.951381156))
            Line((-17.284714489, 14.951381156), (-20, 6))
            Line((-20, 6), (-5, 6))
        make_face()
        with Locations((-12.5, 13.5)):
            Circle(MIRROR6_OUTLINE_R, mode=Mode.SUBTRACT)
    # profile 2 of 2: a face of its own
    with BuildSketch(Plane.YZ.offset(MIRROR6_START)):
        with BuildLine():
            Line((5, 6), (20, 6))
            Line((20, 6), (17.284714489, 14.951381156))
            ThreePointArc((17.284714489, 14.951381156), (12.5, 18.5), (7.715285511, 14.951381156))
            Line((7.715285511, 14.951381156), (5, 6))
        make_face()
        with Locations((12.5, 13.5)):
            Circle(MIRROR6_OUTLINE_R, mode=Mode.SUBTRACT)
    extrude(amount=MIRROR6_DEPTH)


with BuildPart() as body_5:
    # Mirror6 2 outline → Mirror6 2 (new body)
    # profile 1 of 2: a face of its own
    with BuildSketch(Plane.YZ.offset(MIRROR6_START_2)):
        with BuildLine():
            Line((-5, 6), (-7.715285511, 14.951381156))
            ThreePointArc((-7.715285511, 14.951381156), (-12.5, 18.5), (-17.284714489, 14.951381156))
            Line((-17.284714489, 14.951381156), (-20, 6))
            Line((-20, 6), (-5, 6))
        make_face()
        with Locations((-12.5, 13.5)):
            Circle(MIRROR6_2_OUTLINE_R, mode=Mode.SUBTRACT)
    # profile 2 of 2: a face of its own
    with BuildSketch(Plane.YZ.offset(MIRROR6_START_2)):
        with BuildLine():
            Line((5, 6), (20, 6))
            Line((20, 6), (17.284714489, 14.951381156))
            ThreePointArc((17.284714489, 14.951381156), (12.5, 18.5), (7.715285511, 14.951381156))
            Line((7.715285511, 14.951381156), (5, 6))
        make_face()
        with Locations((12.5, 13.5)):
            Circle(MIRROR6_2_OUTLINE_R, mode=Mode.SUBTRACT)
    extrude(amount=MIRROR6_2_DEPTH)


with BuildPart() as body_6:
    # Mirror6 3 outline → Mirror6 3 (new body)
    with BuildSketch(Plane.YZ.offset(MIRROR6_START_3)):
        with BuildLine():
            Line((-5, 6), (-7.715285511, 14.951381156))
            ThreePointArc((-7.715285511, 14.951381156), (-12.5, 18.5), (-17.284714489, 14.951381156))
            Line((-17.284714489, 14.951381156), (-20, 6))
            Line((-20, 6), (-5, 6))
        make_face()
        with Locations((-12.5, 13.5)):
            Circle(MIRROR6_3_OUTLINE_R, mode=Mode.SUBTRACT)
    extrude(amount=MIRROR6_3_DEPTH)


with BuildPart() as body_7:
    # Mirror6 4 outline → Mirror6 4 (new body)
    with BuildSketch(Plane.YZ.offset(MIRROR6_START_4)):
        with BuildLine():
            Line((-5, 6), (-7.715285511, 14.951381156))
            ThreePointArc((-7.715285511, 14.951381156), (-12.5, 18.5), (-17.284714489, 14.951381156))
            Line((-17.284714489, 14.951381156), (-20, 6))
            Line((-20, 6), (-5, 6))
        make_face()
        with Locations((-12.5, 13.5)):
            Circle(MIRROR6_4_OUTLINE_R, mode=Mode.SUBTRACT)
    extrude(amount=MIRROR6_4_DEPTH)


solid = Compound([part.part, cut_extrude1_piece_1.part, cut_extrude1_piece_2.part, body_4.part, body_5.part, body_6.part, body_7.part])
